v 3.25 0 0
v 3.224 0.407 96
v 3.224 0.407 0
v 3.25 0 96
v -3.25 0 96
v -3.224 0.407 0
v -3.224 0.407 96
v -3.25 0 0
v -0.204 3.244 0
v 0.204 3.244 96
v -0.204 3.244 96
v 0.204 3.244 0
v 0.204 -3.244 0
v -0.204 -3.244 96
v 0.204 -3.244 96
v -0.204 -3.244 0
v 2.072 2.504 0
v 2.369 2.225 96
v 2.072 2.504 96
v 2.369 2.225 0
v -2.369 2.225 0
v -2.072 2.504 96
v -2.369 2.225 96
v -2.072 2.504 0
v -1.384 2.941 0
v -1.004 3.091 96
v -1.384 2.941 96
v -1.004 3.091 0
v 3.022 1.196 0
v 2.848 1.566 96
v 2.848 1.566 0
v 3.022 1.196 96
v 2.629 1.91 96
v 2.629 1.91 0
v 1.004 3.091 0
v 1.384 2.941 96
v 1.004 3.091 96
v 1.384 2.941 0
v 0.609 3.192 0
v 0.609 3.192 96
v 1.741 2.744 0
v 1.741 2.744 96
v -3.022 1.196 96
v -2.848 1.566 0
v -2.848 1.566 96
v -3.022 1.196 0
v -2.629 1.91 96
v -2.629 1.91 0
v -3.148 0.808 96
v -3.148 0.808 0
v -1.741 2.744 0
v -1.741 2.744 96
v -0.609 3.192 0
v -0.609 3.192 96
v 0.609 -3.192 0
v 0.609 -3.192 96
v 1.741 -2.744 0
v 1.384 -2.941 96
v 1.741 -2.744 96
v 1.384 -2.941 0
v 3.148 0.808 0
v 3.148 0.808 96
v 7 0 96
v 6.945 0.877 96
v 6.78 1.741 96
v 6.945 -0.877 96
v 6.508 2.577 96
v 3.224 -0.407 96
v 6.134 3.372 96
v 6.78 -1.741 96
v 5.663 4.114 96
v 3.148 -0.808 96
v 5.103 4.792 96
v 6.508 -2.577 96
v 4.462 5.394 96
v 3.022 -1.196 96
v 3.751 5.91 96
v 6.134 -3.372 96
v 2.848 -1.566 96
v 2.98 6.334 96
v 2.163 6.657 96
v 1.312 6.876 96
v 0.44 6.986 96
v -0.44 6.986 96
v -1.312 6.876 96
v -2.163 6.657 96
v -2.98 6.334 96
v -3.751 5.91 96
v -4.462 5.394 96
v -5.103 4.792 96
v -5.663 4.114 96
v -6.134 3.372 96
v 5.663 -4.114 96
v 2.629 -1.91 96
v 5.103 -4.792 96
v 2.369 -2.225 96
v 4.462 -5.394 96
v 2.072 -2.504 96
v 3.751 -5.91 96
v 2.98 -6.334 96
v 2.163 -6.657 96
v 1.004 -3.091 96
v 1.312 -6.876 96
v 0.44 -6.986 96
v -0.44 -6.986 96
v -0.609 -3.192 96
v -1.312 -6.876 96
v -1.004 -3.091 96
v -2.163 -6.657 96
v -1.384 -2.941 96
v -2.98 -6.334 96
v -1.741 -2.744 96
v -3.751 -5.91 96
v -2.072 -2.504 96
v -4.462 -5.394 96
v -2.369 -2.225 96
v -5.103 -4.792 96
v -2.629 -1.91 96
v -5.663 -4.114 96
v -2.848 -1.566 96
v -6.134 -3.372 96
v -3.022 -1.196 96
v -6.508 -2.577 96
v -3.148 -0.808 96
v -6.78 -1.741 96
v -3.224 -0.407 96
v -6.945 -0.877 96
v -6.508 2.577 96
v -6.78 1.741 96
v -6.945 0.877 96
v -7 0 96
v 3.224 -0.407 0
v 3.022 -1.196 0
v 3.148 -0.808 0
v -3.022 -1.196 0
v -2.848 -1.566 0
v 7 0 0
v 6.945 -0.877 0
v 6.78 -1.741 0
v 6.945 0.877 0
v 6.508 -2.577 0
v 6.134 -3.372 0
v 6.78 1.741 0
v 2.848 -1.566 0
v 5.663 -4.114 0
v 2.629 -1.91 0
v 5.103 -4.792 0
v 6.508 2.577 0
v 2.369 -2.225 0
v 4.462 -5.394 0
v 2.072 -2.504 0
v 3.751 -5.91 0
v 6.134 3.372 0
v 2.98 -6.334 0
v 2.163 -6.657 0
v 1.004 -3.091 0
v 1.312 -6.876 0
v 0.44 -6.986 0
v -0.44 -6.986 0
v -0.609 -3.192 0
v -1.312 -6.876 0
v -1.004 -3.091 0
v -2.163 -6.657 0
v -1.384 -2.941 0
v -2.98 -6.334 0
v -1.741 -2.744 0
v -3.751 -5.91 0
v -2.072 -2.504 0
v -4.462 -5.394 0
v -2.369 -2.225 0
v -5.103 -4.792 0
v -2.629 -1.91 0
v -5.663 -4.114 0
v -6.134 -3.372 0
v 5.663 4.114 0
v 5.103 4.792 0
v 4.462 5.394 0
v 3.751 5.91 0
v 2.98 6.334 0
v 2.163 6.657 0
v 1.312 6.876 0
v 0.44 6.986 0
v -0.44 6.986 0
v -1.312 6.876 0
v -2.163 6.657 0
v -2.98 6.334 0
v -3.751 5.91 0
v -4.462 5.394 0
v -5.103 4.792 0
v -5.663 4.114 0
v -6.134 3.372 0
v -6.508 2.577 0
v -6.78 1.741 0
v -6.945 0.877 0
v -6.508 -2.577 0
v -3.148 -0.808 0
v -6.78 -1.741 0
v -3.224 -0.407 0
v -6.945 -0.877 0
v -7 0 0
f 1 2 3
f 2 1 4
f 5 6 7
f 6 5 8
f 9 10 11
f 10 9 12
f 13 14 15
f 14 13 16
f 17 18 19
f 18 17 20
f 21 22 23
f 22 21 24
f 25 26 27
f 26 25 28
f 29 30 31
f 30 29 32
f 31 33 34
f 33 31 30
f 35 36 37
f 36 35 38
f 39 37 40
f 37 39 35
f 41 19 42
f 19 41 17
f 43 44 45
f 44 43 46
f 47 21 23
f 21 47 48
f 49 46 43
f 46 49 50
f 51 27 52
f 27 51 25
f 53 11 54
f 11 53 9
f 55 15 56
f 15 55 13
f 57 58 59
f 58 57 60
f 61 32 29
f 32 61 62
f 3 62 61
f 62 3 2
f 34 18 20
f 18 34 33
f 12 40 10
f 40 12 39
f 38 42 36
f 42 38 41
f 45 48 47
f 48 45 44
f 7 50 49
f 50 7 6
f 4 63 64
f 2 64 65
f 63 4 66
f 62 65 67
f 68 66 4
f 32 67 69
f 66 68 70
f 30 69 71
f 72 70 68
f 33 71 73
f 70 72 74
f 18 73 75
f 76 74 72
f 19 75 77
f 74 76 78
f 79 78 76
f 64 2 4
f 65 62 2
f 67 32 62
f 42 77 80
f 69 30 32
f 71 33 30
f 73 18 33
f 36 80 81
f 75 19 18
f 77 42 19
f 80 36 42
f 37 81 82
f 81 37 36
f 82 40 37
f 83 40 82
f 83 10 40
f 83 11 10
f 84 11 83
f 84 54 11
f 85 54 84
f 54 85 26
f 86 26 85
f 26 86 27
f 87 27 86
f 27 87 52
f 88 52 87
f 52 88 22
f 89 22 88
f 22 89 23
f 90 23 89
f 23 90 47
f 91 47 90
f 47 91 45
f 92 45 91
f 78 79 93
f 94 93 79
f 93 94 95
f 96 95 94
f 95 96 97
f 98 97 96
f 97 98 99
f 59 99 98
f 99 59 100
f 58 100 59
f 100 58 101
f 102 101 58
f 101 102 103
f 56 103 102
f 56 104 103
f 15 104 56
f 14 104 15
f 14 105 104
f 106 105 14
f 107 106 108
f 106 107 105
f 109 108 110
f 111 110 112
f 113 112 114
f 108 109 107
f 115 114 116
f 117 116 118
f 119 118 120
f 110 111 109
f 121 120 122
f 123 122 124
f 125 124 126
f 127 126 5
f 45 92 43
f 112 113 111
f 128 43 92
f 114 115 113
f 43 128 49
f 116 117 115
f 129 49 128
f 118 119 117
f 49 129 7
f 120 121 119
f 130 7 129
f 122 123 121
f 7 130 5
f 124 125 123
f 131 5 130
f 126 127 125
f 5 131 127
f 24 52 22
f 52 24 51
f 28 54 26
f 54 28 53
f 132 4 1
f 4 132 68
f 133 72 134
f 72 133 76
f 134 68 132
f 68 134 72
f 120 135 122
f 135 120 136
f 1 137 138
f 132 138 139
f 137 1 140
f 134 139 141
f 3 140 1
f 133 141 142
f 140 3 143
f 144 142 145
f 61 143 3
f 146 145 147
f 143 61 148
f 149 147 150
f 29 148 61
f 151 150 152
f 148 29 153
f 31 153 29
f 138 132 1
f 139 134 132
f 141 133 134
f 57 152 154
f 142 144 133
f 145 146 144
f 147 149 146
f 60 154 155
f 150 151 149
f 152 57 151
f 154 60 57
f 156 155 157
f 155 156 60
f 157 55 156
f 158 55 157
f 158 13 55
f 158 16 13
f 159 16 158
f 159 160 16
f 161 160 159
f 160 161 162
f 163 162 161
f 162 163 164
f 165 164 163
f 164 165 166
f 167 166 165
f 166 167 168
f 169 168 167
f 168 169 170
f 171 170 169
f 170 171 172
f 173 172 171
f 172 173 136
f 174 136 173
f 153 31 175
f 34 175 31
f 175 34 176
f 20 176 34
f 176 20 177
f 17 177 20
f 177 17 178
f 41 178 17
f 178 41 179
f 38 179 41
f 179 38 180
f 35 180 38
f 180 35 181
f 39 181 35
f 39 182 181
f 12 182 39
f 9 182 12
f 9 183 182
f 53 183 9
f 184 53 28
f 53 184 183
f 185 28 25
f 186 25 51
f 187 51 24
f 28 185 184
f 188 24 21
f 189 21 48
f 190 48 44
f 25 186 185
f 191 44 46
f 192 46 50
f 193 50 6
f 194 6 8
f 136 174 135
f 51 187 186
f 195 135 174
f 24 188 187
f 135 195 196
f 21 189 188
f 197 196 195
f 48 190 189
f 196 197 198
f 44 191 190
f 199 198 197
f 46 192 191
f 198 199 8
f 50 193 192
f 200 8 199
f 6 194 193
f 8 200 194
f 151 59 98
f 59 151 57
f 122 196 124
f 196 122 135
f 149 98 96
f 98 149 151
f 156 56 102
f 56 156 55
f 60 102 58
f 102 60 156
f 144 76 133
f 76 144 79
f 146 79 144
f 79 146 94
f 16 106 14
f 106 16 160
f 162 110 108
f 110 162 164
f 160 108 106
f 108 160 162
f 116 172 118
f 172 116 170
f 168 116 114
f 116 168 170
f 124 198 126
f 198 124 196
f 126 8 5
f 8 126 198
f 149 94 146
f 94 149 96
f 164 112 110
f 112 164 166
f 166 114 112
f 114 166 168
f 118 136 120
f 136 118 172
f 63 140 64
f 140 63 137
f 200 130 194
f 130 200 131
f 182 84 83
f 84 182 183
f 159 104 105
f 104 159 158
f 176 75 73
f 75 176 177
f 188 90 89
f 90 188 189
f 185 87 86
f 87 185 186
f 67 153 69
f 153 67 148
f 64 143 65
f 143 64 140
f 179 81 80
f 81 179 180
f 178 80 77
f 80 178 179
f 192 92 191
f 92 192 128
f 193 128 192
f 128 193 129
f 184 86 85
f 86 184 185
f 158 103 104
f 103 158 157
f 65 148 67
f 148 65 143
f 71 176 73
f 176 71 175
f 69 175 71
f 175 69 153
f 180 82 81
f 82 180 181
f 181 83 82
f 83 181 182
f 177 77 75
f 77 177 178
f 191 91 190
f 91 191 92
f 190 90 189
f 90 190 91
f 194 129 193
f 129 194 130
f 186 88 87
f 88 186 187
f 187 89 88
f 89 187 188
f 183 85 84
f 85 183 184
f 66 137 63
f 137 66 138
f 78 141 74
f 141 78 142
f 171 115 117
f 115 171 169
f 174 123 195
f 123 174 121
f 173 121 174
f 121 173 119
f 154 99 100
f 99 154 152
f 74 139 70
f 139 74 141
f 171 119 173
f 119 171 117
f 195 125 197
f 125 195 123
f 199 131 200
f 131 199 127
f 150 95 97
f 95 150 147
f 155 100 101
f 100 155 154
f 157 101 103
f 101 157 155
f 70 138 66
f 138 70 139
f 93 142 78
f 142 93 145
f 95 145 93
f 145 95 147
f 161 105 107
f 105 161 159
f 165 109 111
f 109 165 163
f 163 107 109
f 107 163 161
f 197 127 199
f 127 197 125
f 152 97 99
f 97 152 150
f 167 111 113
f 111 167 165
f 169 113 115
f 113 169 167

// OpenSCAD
$fn = 50;


difference() {
	union() {
		cylinder(h = 96, r = 7.0000000000);
	}
	union() {
		cylinder(h = 96, r = 3.2500000000);
		cylinder(h = 96, r = 1.8000000000);
		cylinder(h = 96, r = 1.8000000000);
		cylinder(h = 96, r = 1.8000000000);
	}
}
